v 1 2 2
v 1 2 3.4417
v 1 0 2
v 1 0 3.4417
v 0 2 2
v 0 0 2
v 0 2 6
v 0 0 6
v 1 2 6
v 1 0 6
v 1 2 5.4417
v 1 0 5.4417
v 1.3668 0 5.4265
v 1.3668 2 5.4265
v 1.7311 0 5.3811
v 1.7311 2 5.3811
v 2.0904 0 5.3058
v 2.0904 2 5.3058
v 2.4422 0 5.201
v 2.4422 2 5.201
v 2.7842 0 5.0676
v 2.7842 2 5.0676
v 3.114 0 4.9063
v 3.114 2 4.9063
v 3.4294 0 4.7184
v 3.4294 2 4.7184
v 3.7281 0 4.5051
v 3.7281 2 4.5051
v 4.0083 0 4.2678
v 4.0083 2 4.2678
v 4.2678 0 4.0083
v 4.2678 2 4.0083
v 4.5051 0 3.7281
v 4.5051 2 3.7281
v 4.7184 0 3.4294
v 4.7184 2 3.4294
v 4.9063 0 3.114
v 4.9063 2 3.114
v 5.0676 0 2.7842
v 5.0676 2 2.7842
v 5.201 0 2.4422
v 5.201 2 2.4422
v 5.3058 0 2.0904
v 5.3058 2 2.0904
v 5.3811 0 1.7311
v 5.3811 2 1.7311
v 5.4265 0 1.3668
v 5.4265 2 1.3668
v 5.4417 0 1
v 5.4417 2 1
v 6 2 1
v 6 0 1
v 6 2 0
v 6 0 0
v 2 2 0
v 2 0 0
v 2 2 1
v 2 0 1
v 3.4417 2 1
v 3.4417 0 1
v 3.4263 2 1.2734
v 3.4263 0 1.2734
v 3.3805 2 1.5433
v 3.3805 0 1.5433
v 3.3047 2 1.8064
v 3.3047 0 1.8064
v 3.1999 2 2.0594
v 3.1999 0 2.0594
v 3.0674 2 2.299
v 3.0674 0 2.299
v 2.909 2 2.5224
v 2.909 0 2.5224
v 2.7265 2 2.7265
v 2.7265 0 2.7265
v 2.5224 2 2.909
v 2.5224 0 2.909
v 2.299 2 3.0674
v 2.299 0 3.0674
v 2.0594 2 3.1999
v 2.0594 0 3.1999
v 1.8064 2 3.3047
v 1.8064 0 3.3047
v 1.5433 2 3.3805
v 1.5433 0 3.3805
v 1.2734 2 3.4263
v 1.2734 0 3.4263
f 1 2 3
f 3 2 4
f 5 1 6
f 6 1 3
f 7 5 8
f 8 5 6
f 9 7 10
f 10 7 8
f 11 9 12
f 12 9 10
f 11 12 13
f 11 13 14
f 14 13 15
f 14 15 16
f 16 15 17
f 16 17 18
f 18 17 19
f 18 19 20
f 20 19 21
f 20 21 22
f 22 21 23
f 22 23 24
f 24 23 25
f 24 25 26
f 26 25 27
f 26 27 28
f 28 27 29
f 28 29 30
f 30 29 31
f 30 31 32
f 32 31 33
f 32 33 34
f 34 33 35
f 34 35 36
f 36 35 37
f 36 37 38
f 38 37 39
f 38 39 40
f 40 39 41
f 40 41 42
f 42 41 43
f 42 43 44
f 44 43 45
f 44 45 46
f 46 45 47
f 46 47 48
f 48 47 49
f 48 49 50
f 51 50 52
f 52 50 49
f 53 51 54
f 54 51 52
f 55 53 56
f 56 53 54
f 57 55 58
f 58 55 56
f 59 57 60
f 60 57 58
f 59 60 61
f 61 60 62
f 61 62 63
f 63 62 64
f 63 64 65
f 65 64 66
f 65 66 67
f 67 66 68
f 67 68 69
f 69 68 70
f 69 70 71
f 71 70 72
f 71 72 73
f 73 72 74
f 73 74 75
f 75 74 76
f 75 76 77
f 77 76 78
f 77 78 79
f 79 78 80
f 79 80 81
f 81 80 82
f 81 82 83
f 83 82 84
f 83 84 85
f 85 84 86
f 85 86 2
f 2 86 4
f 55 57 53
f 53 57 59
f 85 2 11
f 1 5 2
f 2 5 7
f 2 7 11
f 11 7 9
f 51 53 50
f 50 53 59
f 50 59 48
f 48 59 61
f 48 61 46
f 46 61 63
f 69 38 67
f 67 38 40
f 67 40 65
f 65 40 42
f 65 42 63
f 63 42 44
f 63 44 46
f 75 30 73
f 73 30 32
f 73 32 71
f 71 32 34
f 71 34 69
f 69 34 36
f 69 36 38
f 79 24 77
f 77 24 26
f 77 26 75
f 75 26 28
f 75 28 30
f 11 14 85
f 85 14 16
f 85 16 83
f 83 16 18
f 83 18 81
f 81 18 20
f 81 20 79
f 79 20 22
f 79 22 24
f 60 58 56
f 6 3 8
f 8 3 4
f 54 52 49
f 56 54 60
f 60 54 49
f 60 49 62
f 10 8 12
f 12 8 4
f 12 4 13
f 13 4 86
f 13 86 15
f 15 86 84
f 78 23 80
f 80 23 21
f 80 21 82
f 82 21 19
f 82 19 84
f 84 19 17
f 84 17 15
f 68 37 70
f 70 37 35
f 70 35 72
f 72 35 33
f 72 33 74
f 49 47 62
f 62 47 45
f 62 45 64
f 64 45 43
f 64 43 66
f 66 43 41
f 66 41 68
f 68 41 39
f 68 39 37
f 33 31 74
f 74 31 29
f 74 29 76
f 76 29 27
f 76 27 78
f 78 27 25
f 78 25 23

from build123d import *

# Parameters (mm, degrees)
SKETCH2_W           = 1
SKETCH2_H           = 4
SKETCH2_W_2         = 4
SKETCH2_H_2         = 1
BOSS_EXTRUDE1_DEPTH = 2


with BuildPart() as part:
    # Sketch2 → Boss-Extrude1 (new body)
    with BuildSketch(Plane(origin=(0, 0, 0), x_dir=(1, 0, 0), z_dir=(0, 1, 0))):
        with Locations((0.5, -4)):
            Rectangle(SKETCH2_W, SKETCH2_H)
        with BuildLine():
            Line((5.441670533, -1), (3.441670533, -1))
            ThreePointArc((3.441670533, -1), (2.726521791, -2.726521791), (1, -3.441670533))
            Line((1, -3.441670533), (1, -5.441670533))
            ThreePointArc((1, -5.441670533), (4.140735354, -4.140735354), (5.441670533, -1))
        make_face()
        with Locations((4, -0.5)):
            Rectangle(SKETCH2_W_2, SKETCH2_H_2)
    extrude(amount=BOSS_EXTRUDE1_DEPTH)


solid = part.part
